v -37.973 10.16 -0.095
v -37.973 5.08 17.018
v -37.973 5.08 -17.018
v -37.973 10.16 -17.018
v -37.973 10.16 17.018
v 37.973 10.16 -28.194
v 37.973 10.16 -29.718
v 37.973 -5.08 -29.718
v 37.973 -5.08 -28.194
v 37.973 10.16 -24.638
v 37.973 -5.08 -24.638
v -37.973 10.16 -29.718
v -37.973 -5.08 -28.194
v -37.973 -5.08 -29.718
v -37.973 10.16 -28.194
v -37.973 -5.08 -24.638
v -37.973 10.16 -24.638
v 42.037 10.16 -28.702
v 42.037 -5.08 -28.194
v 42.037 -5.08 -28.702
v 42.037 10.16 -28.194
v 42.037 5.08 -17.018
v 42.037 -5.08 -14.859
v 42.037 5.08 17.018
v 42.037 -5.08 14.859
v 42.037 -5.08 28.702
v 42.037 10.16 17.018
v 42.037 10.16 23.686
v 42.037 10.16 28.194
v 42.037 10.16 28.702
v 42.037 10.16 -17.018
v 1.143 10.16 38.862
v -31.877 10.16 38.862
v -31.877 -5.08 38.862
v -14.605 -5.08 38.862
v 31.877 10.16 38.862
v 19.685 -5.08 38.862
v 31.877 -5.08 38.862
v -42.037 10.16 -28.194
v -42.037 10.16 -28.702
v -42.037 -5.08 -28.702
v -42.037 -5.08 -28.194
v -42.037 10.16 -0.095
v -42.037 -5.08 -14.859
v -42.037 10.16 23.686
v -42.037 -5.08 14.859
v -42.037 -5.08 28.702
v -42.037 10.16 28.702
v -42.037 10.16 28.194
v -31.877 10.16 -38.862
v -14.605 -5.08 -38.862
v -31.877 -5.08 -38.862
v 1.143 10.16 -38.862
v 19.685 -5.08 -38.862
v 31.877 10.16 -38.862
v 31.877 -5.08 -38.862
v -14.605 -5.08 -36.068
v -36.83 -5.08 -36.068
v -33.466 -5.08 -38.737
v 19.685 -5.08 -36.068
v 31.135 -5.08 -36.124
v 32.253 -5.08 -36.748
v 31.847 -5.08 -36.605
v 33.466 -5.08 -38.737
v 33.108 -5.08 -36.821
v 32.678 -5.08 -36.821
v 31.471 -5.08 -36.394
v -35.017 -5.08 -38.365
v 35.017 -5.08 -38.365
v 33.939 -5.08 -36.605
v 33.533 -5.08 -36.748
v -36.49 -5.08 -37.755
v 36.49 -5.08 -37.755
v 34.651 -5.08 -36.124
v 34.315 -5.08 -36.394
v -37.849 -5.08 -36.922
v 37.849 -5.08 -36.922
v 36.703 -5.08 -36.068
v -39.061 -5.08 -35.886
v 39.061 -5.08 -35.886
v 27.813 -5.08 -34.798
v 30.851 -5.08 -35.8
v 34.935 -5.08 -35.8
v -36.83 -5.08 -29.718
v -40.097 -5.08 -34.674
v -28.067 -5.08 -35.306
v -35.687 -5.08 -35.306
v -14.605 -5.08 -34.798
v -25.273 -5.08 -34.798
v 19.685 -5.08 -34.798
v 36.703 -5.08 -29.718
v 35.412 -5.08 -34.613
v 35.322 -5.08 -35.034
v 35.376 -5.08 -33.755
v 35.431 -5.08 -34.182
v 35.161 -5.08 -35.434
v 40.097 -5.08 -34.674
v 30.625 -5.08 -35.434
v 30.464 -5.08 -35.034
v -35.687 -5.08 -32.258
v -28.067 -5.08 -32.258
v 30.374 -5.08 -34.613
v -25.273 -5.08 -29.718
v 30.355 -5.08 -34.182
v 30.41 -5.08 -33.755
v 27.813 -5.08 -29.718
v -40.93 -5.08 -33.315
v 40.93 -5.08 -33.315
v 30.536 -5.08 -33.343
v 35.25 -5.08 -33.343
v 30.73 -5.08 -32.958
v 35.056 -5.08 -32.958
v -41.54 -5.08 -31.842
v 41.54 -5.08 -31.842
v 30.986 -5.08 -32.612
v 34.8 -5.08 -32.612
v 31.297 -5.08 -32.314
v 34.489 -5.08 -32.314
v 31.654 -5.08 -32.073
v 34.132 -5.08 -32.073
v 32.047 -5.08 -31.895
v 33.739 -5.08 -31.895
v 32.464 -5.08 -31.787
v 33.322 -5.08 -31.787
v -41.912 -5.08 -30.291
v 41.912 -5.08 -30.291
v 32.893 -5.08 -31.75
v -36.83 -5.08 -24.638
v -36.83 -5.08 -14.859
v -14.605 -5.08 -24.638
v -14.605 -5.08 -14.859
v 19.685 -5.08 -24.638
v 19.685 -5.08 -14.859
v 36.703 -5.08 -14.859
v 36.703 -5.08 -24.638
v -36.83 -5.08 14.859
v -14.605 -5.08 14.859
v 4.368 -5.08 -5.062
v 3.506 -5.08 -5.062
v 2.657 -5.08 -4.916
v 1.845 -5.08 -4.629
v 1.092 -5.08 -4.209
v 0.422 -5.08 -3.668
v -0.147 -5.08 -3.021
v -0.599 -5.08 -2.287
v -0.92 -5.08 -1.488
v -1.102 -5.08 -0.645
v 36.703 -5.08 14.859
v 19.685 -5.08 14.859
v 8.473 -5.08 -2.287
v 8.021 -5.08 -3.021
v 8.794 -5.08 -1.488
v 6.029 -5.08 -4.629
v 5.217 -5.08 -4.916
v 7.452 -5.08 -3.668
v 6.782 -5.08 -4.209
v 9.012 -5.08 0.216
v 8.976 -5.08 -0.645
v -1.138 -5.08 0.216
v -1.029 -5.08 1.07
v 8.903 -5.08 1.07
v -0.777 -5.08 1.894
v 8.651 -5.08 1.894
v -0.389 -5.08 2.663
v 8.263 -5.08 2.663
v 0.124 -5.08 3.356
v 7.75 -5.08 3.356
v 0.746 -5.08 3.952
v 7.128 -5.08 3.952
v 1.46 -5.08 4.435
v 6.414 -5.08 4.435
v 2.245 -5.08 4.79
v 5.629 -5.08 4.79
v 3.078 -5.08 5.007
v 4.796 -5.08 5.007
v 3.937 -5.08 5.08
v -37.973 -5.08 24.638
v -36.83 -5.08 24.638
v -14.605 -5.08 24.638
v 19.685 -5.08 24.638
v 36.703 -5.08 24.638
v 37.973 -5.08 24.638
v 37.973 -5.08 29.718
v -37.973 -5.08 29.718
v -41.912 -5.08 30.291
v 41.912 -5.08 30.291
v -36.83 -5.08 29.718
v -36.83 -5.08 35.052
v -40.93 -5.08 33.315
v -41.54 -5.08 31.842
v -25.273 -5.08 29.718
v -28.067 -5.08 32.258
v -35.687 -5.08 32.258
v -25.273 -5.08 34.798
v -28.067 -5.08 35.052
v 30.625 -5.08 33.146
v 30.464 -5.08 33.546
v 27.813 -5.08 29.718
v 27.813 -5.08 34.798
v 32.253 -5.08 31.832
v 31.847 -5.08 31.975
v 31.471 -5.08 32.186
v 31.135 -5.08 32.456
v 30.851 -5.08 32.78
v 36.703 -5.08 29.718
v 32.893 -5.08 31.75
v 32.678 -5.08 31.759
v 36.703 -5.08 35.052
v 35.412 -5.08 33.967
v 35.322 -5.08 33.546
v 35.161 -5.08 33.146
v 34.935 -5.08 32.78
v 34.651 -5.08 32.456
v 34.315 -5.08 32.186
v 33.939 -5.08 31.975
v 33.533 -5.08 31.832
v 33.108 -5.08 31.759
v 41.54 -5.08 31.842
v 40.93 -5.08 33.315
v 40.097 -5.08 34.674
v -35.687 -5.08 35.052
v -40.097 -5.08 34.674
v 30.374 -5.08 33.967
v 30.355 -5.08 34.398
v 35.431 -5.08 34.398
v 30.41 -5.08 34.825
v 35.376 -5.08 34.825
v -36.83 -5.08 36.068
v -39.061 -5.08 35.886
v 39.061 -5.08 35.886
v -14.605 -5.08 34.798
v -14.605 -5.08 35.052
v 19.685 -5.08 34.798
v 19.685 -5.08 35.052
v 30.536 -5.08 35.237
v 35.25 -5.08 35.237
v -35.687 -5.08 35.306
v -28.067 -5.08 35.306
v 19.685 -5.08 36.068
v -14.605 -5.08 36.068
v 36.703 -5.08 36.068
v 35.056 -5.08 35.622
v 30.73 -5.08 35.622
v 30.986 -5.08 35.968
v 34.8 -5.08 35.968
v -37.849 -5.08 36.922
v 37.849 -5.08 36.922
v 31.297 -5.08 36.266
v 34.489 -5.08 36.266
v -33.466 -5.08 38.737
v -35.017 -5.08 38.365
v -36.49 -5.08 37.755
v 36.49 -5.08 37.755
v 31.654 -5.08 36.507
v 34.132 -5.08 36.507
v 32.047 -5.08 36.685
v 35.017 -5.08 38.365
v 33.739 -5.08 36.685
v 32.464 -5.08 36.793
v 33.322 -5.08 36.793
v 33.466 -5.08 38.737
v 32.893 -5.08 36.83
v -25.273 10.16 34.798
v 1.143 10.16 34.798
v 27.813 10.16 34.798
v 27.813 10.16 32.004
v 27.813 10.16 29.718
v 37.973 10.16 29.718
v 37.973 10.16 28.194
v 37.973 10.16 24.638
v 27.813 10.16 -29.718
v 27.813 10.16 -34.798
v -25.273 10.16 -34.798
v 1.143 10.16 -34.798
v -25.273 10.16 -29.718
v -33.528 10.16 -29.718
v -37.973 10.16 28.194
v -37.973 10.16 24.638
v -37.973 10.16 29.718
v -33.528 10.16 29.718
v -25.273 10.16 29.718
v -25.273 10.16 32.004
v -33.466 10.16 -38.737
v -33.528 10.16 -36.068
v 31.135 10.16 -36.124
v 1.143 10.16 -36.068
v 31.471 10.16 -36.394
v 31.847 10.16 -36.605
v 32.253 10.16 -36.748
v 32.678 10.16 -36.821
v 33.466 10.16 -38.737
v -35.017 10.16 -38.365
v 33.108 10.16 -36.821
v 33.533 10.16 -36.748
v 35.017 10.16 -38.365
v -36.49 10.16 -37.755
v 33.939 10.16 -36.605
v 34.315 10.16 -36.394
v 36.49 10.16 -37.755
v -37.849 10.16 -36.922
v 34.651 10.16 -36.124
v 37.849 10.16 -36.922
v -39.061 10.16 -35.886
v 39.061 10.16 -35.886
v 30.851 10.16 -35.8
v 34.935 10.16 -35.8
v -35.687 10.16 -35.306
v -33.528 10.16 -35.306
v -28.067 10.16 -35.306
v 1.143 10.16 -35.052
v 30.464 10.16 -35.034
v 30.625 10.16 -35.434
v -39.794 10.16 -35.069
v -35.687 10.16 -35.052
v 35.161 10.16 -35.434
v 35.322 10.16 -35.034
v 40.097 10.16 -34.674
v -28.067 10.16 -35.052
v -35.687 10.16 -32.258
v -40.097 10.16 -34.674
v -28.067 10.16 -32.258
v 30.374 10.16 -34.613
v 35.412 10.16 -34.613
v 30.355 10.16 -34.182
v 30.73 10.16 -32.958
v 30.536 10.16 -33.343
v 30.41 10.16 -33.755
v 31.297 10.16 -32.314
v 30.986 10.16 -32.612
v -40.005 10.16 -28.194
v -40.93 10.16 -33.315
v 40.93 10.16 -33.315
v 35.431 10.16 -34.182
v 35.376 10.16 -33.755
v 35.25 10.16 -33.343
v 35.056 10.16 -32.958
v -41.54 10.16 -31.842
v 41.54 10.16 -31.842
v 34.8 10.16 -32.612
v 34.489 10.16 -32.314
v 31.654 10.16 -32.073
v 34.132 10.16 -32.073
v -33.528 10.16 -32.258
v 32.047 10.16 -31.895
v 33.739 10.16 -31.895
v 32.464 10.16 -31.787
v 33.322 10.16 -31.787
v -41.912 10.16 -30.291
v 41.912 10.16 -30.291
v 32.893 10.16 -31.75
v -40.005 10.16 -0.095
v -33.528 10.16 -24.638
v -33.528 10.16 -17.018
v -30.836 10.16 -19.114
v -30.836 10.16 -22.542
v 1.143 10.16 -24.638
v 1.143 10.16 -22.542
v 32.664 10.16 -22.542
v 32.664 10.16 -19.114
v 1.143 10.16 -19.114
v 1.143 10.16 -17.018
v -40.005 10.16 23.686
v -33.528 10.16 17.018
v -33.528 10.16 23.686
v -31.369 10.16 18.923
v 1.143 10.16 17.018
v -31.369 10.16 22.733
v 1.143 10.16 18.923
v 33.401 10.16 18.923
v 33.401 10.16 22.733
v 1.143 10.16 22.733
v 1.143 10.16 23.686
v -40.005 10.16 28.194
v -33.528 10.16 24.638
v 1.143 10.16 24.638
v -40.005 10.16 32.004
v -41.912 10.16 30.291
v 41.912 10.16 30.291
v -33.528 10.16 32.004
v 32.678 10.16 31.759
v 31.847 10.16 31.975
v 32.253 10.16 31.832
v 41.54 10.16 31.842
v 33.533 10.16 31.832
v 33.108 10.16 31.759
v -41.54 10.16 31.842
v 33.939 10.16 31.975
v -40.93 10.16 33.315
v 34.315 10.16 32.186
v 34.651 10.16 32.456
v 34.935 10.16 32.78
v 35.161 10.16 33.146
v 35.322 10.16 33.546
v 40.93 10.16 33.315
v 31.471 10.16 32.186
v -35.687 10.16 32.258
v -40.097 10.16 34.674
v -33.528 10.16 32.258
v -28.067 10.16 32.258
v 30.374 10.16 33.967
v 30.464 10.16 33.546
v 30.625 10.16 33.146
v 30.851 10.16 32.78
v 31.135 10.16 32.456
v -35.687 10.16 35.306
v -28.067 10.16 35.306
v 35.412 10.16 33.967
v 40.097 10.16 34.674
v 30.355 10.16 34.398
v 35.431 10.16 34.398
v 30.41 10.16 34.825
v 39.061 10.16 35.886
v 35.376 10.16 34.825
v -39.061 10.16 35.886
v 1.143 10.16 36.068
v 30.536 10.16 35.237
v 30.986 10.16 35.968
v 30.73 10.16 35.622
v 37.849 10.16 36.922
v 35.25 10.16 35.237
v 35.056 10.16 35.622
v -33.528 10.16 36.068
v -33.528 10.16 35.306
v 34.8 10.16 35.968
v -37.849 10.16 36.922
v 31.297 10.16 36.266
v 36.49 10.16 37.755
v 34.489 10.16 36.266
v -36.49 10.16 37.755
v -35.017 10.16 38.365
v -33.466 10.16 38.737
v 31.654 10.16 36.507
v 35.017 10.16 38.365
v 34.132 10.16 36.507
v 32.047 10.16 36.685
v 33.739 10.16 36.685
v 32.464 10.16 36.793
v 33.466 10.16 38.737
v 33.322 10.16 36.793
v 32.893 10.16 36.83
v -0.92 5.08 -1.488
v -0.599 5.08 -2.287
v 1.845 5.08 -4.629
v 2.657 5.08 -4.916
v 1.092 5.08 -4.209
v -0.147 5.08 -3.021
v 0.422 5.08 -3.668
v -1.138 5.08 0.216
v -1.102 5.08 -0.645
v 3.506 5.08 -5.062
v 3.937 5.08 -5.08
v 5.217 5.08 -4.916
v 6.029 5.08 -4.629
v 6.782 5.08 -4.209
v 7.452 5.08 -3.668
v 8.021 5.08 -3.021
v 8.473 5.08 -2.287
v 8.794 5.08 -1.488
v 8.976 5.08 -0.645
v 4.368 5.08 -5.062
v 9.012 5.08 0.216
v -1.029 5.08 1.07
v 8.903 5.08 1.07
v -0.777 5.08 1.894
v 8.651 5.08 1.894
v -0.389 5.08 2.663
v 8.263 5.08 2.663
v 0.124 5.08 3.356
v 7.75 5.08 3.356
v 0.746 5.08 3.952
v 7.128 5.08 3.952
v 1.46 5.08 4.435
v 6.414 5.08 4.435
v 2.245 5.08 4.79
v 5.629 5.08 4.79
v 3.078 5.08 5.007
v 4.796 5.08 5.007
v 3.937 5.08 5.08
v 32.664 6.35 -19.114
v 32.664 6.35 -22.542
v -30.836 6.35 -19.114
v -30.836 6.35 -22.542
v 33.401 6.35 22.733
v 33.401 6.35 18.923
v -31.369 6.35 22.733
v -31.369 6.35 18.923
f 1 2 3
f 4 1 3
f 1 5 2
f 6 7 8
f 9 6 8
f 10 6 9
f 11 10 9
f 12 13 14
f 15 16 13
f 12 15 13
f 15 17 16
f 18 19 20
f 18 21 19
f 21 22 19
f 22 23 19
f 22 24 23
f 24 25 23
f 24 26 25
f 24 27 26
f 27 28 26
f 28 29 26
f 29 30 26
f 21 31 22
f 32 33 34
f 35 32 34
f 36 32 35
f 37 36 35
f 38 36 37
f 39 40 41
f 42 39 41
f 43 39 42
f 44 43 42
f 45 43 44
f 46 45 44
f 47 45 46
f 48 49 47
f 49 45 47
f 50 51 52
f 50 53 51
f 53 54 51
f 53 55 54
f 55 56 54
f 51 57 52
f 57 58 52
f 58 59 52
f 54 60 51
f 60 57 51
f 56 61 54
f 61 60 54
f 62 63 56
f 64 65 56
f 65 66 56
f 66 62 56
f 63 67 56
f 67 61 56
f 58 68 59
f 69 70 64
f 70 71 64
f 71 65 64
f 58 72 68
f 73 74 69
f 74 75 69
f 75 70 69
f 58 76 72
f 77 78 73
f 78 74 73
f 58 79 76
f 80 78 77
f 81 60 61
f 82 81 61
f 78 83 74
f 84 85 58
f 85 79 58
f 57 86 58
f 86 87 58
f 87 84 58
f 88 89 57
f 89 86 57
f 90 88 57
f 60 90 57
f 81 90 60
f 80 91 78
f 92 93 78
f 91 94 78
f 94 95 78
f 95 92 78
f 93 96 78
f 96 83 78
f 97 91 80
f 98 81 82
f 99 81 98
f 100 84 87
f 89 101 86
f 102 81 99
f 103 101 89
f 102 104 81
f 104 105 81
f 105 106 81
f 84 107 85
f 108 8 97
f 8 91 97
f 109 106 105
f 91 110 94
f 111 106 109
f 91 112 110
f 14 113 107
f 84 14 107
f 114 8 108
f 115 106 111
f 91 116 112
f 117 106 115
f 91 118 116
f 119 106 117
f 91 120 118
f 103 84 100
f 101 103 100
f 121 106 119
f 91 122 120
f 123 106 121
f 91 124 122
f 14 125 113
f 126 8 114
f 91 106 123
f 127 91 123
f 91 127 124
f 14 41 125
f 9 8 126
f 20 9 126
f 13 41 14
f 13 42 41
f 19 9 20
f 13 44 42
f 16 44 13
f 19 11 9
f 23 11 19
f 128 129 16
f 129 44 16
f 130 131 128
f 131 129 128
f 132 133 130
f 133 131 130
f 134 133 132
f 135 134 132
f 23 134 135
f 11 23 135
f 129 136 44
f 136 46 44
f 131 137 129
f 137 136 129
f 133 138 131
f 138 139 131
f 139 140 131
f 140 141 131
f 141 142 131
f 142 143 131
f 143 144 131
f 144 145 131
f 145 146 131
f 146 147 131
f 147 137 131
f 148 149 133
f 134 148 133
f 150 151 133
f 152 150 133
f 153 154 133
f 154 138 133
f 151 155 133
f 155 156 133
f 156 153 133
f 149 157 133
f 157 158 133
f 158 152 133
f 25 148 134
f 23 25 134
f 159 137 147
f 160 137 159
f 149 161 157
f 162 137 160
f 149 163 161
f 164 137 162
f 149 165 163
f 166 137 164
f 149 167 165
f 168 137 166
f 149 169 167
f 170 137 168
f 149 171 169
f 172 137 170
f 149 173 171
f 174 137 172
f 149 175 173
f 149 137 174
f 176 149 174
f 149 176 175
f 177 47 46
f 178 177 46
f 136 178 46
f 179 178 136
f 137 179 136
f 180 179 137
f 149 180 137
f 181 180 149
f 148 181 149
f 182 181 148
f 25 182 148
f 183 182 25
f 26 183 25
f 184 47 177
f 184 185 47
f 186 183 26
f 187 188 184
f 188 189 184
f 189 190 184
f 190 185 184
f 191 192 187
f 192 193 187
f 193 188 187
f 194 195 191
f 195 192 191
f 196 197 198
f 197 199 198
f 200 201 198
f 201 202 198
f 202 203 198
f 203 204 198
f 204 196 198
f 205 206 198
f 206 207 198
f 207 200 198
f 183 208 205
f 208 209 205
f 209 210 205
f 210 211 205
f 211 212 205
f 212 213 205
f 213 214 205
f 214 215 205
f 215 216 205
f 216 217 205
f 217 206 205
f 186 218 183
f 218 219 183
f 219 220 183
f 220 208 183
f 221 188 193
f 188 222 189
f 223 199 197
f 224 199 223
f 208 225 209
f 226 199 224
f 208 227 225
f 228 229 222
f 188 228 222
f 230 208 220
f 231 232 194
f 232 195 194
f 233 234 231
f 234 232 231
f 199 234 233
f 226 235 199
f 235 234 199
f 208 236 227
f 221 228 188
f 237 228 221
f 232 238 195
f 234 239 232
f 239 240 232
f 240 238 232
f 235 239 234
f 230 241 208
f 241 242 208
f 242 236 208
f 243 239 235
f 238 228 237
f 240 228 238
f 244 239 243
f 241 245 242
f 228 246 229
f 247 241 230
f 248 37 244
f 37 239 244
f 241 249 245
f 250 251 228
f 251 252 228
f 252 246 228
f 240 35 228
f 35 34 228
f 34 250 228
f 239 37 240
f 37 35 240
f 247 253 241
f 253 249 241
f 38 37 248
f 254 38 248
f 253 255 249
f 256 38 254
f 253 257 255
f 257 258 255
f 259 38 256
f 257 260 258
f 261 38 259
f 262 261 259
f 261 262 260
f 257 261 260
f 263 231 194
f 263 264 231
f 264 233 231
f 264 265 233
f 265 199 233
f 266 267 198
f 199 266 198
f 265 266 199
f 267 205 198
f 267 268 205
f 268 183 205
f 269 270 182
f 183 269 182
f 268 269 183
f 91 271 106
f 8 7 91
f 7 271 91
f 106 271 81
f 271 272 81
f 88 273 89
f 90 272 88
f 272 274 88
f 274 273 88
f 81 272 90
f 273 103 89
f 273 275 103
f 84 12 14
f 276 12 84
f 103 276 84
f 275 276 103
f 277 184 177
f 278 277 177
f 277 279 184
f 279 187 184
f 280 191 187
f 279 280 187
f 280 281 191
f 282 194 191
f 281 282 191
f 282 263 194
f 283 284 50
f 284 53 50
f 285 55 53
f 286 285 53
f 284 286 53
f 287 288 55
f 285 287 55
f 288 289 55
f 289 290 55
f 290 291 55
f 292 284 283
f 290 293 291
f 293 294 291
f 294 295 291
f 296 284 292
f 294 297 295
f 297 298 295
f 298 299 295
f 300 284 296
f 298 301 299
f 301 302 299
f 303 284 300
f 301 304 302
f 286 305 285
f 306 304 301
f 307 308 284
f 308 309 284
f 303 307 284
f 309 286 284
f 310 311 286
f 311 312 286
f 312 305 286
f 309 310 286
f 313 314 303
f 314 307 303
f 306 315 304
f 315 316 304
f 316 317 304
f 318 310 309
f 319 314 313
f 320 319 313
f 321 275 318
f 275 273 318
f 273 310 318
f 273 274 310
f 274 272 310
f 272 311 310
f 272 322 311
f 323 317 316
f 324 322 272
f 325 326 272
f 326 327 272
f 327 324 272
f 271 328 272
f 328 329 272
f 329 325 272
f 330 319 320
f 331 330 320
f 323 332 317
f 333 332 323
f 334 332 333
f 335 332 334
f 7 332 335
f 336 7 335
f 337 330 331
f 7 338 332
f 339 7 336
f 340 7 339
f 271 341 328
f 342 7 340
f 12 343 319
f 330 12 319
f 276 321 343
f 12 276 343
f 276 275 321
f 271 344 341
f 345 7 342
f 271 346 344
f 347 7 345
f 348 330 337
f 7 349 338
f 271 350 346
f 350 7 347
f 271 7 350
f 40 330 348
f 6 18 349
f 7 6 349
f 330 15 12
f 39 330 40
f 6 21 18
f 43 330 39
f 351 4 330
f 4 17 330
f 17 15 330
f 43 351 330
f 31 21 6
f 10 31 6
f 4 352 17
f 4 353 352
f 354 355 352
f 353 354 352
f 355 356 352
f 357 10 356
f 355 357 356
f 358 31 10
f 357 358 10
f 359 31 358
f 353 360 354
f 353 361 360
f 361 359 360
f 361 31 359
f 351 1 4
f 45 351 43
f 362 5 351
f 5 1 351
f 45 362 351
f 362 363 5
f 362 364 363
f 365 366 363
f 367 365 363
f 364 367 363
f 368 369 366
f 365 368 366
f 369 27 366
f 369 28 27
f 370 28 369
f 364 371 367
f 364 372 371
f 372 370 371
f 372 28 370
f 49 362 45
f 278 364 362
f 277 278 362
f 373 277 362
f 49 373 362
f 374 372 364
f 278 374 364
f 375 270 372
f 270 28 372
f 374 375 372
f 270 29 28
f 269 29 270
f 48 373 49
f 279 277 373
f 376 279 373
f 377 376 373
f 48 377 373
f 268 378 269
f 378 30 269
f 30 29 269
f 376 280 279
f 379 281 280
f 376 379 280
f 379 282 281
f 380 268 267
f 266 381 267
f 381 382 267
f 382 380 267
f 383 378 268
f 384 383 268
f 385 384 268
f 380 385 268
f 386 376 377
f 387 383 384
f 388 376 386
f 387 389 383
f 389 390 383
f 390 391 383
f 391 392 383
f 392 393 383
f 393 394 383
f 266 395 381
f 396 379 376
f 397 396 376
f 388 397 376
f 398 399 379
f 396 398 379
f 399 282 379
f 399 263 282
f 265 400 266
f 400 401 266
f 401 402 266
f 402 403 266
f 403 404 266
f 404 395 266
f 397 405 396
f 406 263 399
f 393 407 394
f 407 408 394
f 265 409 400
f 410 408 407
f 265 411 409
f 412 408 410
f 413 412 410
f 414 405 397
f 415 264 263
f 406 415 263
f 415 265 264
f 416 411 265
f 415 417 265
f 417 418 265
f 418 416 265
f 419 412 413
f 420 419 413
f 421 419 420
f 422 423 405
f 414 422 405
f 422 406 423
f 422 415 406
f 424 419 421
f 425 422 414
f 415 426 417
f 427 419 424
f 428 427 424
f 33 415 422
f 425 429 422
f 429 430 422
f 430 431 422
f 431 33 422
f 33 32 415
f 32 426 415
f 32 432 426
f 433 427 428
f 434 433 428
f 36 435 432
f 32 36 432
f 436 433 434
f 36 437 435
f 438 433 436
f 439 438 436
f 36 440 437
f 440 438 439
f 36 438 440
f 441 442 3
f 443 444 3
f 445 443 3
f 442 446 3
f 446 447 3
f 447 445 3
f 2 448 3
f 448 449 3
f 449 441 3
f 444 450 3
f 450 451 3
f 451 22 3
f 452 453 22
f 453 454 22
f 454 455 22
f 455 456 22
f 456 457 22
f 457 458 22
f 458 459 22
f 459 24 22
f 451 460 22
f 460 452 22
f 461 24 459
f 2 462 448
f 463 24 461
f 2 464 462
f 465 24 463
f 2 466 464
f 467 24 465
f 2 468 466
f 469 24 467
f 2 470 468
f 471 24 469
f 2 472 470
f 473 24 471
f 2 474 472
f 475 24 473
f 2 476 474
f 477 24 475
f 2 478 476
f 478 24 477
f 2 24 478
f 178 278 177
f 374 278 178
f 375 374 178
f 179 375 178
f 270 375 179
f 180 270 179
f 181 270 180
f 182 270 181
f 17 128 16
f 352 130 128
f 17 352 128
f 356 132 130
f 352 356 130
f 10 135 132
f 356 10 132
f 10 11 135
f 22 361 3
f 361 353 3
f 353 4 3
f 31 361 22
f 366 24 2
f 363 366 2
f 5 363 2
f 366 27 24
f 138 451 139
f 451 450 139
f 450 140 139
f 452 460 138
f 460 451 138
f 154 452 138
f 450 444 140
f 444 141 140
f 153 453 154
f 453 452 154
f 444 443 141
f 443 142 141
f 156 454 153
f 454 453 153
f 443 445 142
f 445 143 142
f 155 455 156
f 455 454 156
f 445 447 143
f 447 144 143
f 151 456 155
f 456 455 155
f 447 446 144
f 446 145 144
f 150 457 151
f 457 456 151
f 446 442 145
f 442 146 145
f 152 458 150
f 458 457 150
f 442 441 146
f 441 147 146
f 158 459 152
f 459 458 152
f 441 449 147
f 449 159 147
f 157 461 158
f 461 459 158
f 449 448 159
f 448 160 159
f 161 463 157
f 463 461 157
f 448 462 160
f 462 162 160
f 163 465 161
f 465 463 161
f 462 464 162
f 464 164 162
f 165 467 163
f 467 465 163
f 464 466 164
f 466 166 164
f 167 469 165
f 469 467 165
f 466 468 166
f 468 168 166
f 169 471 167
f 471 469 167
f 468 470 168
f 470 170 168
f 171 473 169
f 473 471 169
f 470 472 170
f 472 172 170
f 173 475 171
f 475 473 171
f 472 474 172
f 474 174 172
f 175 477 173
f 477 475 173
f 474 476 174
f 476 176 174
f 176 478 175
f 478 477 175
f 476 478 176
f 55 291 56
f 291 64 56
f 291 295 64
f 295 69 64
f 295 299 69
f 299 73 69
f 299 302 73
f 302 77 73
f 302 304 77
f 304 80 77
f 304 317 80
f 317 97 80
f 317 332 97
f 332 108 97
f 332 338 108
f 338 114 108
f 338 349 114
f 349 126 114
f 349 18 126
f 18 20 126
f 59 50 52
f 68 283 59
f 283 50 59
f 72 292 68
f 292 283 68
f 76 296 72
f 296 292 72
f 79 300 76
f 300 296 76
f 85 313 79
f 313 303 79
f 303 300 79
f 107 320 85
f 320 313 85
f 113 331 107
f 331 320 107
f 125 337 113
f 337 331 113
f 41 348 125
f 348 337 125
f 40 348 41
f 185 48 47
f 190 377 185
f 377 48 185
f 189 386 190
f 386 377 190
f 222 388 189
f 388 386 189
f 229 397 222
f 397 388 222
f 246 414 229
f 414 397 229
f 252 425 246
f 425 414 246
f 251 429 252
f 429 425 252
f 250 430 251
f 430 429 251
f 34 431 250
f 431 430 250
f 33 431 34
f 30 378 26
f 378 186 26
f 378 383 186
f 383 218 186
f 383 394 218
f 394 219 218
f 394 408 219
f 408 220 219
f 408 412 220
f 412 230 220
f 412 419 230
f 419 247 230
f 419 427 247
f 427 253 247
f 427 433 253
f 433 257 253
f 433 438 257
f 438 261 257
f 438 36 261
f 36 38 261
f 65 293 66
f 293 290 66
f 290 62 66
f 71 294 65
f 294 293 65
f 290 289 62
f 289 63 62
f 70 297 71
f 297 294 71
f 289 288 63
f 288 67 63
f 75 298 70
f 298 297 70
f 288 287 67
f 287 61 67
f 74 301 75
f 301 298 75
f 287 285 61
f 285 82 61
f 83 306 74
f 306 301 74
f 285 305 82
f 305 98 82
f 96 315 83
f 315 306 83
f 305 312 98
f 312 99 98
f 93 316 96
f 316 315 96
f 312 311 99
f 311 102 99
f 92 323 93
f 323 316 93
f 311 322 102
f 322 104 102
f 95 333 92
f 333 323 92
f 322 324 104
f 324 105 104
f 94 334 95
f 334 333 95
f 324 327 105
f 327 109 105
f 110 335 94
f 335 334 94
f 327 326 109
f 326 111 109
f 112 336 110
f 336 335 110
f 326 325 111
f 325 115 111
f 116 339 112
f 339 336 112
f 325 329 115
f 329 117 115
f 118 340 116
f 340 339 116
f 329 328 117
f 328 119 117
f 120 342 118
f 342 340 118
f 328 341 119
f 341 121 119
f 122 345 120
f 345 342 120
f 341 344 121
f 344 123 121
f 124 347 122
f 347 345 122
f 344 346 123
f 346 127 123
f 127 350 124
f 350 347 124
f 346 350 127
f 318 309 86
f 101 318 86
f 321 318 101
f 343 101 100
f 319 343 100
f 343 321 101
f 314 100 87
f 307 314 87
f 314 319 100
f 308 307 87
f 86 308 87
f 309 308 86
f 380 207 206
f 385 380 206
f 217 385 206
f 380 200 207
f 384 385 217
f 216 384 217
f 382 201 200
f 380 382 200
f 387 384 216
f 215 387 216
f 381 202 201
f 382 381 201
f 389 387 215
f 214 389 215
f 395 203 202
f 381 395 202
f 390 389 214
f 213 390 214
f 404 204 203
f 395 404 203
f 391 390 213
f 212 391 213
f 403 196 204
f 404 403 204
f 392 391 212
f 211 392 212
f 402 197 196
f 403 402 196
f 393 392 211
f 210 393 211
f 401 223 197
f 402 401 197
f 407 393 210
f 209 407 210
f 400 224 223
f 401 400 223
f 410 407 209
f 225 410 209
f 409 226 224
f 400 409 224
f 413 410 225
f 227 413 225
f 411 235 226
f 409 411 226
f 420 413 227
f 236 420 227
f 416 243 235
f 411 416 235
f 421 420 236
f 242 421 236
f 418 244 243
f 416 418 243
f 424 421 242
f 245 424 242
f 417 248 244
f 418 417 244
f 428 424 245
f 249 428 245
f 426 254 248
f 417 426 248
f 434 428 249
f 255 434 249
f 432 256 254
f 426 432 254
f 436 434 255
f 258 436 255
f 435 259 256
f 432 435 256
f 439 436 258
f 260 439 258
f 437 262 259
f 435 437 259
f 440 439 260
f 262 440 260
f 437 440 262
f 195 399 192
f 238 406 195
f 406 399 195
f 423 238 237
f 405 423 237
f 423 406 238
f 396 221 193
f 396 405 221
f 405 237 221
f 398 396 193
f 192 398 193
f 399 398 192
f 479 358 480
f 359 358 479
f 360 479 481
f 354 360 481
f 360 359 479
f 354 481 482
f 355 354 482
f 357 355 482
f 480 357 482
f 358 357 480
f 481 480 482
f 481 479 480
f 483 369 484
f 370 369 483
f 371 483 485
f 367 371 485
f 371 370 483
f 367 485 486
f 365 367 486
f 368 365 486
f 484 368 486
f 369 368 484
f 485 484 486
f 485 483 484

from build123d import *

# Parameters (mm, degrees)
SKETCH1_W                = 84.074
SKETCH1_H                = 77.724
BOSS_EXTRUDE1_DEPTH      = 5.08
BOSS_EXTRUDE1_DEPTH_BACK = 5.08
SKETCH2_W                = 84.074
SKETCH2_H                = 77.724
BOSS_EXTRUDE2_DEPTH      = 5.08
BOSS_EXTRUDE2_DEPTH_BACK = 10.16
SKETCH3_W                = 53.086
SKETCH3_H                = 5.08
CUT_EXTRUDE1_DEPTH       = 6.08
CUT_EXTRUDE1_DEPTH_BACK  = 11.16
SKETCH4_W                = 75.946
SKETCH4_H                = 5.08
CUT_EXTRUDE2_DEPTH       = 6.08
CUT_EXTRUDE2_DEPTH_BACK  = 11.16
SKETCH5_W                = 75.946
SKETCH5_H                = 7.62
BOSS_EXTRUDE3_DEPTH      = 5.08
BOSS_EXTRUDE3_DEPTH_BACK = 10.16
SKETCH10_R               = 5.08
CUT_EXTRUDE4_DEPTH       = 6.08
CUT_EXTRUDE4_DEPTH_BACK  = 11.16
FILLET1_R                = 10.16
CUT_EXTRUDE6_START       = -16.24
SKETCH15_R               = 2.54
SKETCH15_W               = 7.62
SKETCH15_H               = 3.048
CUT_EXTRUDE6_DEPTH       = 17.24
SKETCH7_W                = 34.036
SKETCH7_H                = 5.08
CUT_EXTRUDE7_DEPTH       = 5.064
SKETCH14_W               = 64.77
SKETCH14_H               = 3.81
SKETCH14_W_2             = 63.5
SKETCH14_H_2             = 3.429
CUT_EXTRUDE8_DEPTH       = 3.81


with BuildPart() as part:
    # Sketch1 → Boss-Extrude1 (new body, two sides)
    with BuildSketch(Plane(origin=(0, 0, 0), x_dir=(1, 0, 0), z_dir=(0, 1, 0))) as boss_extrude1_sk:
        Rectangle(SKETCH1_W, SKETCH1_H)
    extrude(amount=BOSS_EXTRUDE1_DEPTH)
    extrude(boss_extrude1_sk.sketch, amount=-BOSS_EXTRUDE1_DEPTH_BACK)

    # Sketch2 → Boss-Extrude2 (add, two sides)
    with BuildSketch(Plane(origin=(0, 5.08, 0), x_dir=(1, 0, 0), z_dir=(0, 1, 0))) as boss_extrude2_sk:
        Rectangle(SKETCH2_W, SKETCH2_H)
        Polygon((-37.973, -29.718), (-37.973, 29.718), (-25.273, 29.718), (-25.273, 34.798), (27.813, 34.798), (27.813, 29.718), (37.973, 29.718), (37.973, -29.718), (27.813, -29.718), (27.813, -34.798), (-25.273, -34.798), (-25.273, -29.718), align=None, mode=Mode.SUBTRACT)
    extrude(amount=BOSS_EXTRUDE2_DEPTH)
    extrude(boss_extrude2_sk.sketch, amount=-BOSS_EXTRUDE2_DEPTH_BACK)

    # Sketch3 → Cut-Extrude1 (cut, two sides)
    with BuildSketch(Plane(origin=(0, 5.08, 0), x_dir=(1, 0, 0), z_dir=(0, 1, 0))) as cut_extrude1_sk:
        with Locations((1.27, 32.258)):
            Rectangle(SKETCH3_W, SKETCH3_H)
        with Locations((1.27, -32.258)):
            Rectangle(SKETCH3_W, SKETCH3_H)
    extrude(amount=CUT_EXTRUDE1_DEPTH, mode=Mode.SUBTRACT)
    extrude(cut_extrude1_sk.sketch, amount=-CUT_EXTRUDE1_DEPTH_BACK, mode=Mode.SUBTRACT)

    # Sketch4 → Cut-Extrude2 (cut, two sides)
    with BuildSketch(Plane(origin=(0, 5.08, 0), x_dir=(1, 0, 0), z_dir=(0, 1, 0))) as cut_extrude2_sk:
        with Locations((0, 27.178)):
            Rectangle(SKETCH4_W, SKETCH4_H)
        with Locations((0, -27.178)):
            Rectangle(SKETCH4_W, SKETCH4_H)
    extrude(amount=CUT_EXTRUDE2_DEPTH, mode=Mode.SUBTRACT)
    extrude(cut_extrude2_sk.sketch, amount=-CUT_EXTRUDE2_DEPTH_BACK, mode=Mode.SUBTRACT)

    # Sketch5 → Boss-Extrude3 (add, two sides)
    with BuildSketch(Plane(origin=(0, 5.08, 0), x_dir=(1, 0, 0), z_dir=(0, 1, 0))) as boss_extrude3_sk:
        with Locations((0, 20.828)):
            Rectangle(SKETCH5_W, SKETCH5_H)
        with Locations((0, -20.828)):
            Rectangle(SKETCH5_W, SKETCH5_H)
    extrude(amount=BOSS_EXTRUDE3_DEPTH)
    extrude(boss_extrude3_sk.sketch, amount=-BOSS_EXTRUDE3_DEPTH_BACK)

    # Sketch10 → Cut-Extrude4 (cut, two sides)
    with BuildSketch(Plane(origin=(0, 5.08, 0), x_dir=(1, 0, 0), z_dir=(0, 1, 0))) as cut_extrude4_sk:
        with Locations((3.937, 0)):
            Circle(SKETCH10_R)
    extrude(amount=CUT_EXTRUDE4_DEPTH, mode=Mode.SUBTRACT)
    extrude(cut_extrude4_sk.sketch, amount=-CUT_EXTRUDE4_DEPTH_BACK, mode=Mode.SUBTRACT)

    # Fillet1
    fillet1_edges = [part.edges().sort_by_distance(p)[0] for p in [
        (42.037, 2.54, 38.862),
        (-42.037, 2.54, 38.862),
        (-42.037, 2.54, -38.862),
        (42.037, 2.54, -38.862),
    ]]
    fillet(fillet1_edges, radius=FILLET1_R)

    # Sketch15 → Cut-Extrude6 (cut)
    with BuildSketch(Plane(origin=(0, 10.16, 0), x_dir=(1, 0, 0), z_dir=(0, 1, 0)).offset(CUT_EXTRUDE6_START)):
        with Locations((32.893, 34.29)):
            Circle(SKETCH15_R)
        with Locations((-31.877, 33.782)):
            Rectangle(SKETCH15_W, SKETCH15_H)
    cut_extrude6 = extrude(amount=CUT_EXTRUDE6_DEPTH, mode=Mode.SUBTRACT)

    # Mirror1: Cut-Extrude6 across plane
    add(cut_extrude6.mirror(Plane.XY), mode=Mode.SUBTRACT)

    # Sketch7 → Cut-Extrude7 (cut, through all)
    with BuildSketch(Plane.ZY.offset(-37.973)):
        with Locations((0, 7.62)):
            Rectangle(SKETCH7_W, SKETCH7_H)
    extrude(amount=-CUT_EXTRUDE7_DEPTH, mode=Mode.SUBTRACT)

    # Sketch14 → Cut-Extrude8 (cut)
    with BuildSketch(Plane(origin=(0, 10.16, 0), x_dir=(1, 0, 0), z_dir=(0, 1, 0))):
        with Locations((1.015527002, -20.828)):
            Rectangle(SKETCH14_W, SKETCH14_H)
        with Locations((0.914410511, 20.828)):
            Rectangle(SKETCH14_W_2, SKETCH14_H_2)
    extrude(amount=-CUT_EXTRUDE8_DEPTH, mode=Mode.SUBTRACT)


solid = part.part
